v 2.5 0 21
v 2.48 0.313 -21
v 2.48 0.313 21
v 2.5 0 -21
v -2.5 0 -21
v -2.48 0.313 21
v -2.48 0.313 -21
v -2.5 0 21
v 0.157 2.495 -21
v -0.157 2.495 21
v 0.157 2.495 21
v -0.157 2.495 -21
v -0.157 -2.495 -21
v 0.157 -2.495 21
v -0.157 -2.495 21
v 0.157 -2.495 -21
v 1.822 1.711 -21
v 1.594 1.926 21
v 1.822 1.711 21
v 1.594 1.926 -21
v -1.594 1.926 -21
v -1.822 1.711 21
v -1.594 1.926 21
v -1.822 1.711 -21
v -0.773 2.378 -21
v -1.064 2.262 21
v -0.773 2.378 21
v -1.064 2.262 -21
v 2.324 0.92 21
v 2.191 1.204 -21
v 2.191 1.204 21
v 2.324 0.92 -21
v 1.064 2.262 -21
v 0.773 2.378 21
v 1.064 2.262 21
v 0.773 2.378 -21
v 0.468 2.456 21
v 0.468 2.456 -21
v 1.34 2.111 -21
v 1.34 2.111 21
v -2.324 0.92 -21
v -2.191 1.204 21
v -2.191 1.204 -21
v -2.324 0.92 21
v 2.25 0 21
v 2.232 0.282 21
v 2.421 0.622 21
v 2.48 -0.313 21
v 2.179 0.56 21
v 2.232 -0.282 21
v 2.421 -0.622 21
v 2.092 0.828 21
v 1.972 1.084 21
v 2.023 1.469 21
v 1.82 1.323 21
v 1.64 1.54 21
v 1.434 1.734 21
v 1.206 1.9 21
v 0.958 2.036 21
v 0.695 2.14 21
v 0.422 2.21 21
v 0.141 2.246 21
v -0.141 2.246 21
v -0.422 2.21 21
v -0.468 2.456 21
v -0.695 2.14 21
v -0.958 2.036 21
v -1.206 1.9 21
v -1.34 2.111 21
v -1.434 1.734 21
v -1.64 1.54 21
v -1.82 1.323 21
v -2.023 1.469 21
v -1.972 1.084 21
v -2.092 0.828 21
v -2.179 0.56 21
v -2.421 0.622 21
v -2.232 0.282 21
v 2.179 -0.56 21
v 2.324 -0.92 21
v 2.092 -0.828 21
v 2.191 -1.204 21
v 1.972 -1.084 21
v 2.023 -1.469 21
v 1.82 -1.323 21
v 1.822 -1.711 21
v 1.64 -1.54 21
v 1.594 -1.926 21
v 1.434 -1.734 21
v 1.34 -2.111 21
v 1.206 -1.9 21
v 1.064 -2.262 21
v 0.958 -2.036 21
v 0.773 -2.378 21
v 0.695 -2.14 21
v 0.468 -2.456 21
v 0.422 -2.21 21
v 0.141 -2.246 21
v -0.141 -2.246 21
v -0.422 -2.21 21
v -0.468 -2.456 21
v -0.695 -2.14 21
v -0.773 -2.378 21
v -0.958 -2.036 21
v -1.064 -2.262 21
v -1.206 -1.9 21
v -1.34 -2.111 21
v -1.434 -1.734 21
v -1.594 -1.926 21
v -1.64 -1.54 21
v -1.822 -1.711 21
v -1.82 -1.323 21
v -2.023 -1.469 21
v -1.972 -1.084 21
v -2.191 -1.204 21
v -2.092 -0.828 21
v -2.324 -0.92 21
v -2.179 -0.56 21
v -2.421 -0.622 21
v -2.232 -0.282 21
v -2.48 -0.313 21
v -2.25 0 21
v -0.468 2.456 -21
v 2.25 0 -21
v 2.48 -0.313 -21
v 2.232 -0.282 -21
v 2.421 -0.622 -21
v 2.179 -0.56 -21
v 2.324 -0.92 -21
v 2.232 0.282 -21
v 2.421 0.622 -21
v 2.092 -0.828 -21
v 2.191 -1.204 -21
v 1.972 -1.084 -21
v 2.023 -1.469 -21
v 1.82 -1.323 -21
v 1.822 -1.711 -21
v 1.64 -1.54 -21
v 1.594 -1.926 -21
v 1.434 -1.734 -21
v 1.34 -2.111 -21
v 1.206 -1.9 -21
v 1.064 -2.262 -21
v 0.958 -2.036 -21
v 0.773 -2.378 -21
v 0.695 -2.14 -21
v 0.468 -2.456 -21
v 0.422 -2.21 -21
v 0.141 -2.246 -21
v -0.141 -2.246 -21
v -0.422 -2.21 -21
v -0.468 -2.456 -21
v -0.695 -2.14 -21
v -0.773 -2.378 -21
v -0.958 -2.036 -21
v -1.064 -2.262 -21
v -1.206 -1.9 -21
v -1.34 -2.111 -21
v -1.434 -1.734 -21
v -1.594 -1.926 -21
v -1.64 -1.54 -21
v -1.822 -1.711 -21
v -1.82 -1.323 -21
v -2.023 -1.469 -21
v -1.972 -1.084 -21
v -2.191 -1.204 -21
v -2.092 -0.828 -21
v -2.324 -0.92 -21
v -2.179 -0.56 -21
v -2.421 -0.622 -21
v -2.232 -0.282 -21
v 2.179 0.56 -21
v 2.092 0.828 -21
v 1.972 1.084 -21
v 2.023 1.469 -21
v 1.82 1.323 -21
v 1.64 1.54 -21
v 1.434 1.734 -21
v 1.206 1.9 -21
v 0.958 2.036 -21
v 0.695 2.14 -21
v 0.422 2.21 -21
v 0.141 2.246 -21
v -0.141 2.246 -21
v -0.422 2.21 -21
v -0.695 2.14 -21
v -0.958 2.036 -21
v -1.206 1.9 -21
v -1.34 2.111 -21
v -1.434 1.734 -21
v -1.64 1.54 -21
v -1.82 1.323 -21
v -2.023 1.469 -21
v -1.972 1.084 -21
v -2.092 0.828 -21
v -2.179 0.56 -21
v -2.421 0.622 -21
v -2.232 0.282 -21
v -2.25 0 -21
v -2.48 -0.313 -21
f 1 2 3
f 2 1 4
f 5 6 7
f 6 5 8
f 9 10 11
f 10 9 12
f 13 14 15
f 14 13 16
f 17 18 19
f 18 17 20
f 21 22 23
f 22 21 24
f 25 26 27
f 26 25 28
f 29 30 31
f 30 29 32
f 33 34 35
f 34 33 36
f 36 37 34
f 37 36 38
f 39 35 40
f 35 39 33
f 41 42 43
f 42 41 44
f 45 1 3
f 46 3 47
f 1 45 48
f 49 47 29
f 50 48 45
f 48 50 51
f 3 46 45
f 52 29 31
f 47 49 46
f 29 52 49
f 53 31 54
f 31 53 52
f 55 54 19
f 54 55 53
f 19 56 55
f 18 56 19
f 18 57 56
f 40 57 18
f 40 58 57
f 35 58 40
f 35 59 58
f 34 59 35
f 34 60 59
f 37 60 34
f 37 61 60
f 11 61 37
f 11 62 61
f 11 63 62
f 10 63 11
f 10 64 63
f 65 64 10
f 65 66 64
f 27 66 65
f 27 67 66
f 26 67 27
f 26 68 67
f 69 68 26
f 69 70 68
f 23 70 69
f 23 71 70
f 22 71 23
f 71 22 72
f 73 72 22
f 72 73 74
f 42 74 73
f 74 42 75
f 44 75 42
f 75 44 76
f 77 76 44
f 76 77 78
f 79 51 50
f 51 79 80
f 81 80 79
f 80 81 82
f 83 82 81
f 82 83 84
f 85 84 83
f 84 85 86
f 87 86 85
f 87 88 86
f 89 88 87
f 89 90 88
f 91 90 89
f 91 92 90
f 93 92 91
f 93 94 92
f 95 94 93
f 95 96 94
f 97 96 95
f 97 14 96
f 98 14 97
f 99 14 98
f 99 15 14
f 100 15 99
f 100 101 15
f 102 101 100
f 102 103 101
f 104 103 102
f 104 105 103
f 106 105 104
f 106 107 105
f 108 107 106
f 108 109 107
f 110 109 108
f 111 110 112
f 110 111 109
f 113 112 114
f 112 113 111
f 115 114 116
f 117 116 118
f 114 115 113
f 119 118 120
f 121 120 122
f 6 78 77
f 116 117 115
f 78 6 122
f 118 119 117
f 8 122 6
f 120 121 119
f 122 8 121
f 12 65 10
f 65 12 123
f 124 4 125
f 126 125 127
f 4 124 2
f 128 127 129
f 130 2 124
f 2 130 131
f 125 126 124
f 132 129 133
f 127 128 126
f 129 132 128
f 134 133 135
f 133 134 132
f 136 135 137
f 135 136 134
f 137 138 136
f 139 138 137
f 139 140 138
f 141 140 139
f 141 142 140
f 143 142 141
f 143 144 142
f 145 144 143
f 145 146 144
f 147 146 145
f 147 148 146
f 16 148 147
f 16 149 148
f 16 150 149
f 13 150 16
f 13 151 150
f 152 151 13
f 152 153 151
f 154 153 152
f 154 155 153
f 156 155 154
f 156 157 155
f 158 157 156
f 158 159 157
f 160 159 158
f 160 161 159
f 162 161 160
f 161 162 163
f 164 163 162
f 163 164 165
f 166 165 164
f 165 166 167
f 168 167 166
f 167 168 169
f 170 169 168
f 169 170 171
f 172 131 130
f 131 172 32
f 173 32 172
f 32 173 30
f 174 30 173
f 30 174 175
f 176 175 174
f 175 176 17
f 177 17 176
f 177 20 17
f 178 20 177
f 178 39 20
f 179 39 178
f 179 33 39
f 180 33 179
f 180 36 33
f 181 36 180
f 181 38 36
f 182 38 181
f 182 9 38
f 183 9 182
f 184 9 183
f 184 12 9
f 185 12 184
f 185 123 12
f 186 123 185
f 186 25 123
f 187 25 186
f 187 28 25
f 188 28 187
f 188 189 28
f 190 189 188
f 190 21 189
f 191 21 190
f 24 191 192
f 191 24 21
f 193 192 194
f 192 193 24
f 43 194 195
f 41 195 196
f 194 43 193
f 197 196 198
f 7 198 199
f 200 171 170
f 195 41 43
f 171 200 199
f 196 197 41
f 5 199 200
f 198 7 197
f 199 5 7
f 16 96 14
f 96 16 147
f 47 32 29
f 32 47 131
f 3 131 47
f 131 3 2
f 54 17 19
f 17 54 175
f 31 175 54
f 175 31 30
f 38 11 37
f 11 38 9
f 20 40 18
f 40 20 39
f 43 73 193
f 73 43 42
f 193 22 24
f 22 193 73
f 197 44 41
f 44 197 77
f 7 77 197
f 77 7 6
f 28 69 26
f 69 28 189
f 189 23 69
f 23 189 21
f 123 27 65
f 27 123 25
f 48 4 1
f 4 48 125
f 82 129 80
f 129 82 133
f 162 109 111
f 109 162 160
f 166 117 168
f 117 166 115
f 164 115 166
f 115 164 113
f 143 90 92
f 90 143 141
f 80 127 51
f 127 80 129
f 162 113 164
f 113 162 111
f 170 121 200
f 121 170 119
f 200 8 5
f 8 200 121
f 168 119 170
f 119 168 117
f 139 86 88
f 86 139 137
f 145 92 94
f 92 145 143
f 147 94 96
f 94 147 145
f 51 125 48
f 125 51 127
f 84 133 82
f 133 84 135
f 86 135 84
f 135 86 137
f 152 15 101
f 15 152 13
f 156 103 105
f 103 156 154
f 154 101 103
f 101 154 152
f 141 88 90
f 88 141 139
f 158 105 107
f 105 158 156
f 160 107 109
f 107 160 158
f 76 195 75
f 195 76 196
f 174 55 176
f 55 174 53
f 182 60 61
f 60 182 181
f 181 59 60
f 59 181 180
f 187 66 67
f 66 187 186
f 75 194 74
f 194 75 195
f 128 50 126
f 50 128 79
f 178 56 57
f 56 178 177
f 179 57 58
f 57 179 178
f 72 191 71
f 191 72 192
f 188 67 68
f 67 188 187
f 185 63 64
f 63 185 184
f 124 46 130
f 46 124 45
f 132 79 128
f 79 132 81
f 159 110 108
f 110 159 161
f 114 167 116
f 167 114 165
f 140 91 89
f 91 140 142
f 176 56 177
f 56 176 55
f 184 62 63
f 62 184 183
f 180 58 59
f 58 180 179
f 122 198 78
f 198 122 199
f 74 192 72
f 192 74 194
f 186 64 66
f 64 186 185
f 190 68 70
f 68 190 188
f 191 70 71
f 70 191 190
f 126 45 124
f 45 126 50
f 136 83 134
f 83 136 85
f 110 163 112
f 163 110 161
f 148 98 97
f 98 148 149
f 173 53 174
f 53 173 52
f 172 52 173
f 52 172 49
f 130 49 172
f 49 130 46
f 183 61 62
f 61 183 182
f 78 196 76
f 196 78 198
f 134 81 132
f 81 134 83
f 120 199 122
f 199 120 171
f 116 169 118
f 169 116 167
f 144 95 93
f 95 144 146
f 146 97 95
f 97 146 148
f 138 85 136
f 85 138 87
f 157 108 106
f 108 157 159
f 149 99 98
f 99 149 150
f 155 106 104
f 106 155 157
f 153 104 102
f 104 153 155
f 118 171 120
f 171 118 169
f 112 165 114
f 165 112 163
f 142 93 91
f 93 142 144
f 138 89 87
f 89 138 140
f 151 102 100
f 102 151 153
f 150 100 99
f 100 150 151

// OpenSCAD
$fn = 50;


difference() {
	union() {
		translate(v = [0, 0, -21.0000000000]) {
			cylinder(h = 42, r = 2.5000000000);
		}
	}
	union() {
		translate(v = [0, 0, -100.0000000000]) {
			cylinder(h = 200, r = 2.2500000000);
		}
	}
}
